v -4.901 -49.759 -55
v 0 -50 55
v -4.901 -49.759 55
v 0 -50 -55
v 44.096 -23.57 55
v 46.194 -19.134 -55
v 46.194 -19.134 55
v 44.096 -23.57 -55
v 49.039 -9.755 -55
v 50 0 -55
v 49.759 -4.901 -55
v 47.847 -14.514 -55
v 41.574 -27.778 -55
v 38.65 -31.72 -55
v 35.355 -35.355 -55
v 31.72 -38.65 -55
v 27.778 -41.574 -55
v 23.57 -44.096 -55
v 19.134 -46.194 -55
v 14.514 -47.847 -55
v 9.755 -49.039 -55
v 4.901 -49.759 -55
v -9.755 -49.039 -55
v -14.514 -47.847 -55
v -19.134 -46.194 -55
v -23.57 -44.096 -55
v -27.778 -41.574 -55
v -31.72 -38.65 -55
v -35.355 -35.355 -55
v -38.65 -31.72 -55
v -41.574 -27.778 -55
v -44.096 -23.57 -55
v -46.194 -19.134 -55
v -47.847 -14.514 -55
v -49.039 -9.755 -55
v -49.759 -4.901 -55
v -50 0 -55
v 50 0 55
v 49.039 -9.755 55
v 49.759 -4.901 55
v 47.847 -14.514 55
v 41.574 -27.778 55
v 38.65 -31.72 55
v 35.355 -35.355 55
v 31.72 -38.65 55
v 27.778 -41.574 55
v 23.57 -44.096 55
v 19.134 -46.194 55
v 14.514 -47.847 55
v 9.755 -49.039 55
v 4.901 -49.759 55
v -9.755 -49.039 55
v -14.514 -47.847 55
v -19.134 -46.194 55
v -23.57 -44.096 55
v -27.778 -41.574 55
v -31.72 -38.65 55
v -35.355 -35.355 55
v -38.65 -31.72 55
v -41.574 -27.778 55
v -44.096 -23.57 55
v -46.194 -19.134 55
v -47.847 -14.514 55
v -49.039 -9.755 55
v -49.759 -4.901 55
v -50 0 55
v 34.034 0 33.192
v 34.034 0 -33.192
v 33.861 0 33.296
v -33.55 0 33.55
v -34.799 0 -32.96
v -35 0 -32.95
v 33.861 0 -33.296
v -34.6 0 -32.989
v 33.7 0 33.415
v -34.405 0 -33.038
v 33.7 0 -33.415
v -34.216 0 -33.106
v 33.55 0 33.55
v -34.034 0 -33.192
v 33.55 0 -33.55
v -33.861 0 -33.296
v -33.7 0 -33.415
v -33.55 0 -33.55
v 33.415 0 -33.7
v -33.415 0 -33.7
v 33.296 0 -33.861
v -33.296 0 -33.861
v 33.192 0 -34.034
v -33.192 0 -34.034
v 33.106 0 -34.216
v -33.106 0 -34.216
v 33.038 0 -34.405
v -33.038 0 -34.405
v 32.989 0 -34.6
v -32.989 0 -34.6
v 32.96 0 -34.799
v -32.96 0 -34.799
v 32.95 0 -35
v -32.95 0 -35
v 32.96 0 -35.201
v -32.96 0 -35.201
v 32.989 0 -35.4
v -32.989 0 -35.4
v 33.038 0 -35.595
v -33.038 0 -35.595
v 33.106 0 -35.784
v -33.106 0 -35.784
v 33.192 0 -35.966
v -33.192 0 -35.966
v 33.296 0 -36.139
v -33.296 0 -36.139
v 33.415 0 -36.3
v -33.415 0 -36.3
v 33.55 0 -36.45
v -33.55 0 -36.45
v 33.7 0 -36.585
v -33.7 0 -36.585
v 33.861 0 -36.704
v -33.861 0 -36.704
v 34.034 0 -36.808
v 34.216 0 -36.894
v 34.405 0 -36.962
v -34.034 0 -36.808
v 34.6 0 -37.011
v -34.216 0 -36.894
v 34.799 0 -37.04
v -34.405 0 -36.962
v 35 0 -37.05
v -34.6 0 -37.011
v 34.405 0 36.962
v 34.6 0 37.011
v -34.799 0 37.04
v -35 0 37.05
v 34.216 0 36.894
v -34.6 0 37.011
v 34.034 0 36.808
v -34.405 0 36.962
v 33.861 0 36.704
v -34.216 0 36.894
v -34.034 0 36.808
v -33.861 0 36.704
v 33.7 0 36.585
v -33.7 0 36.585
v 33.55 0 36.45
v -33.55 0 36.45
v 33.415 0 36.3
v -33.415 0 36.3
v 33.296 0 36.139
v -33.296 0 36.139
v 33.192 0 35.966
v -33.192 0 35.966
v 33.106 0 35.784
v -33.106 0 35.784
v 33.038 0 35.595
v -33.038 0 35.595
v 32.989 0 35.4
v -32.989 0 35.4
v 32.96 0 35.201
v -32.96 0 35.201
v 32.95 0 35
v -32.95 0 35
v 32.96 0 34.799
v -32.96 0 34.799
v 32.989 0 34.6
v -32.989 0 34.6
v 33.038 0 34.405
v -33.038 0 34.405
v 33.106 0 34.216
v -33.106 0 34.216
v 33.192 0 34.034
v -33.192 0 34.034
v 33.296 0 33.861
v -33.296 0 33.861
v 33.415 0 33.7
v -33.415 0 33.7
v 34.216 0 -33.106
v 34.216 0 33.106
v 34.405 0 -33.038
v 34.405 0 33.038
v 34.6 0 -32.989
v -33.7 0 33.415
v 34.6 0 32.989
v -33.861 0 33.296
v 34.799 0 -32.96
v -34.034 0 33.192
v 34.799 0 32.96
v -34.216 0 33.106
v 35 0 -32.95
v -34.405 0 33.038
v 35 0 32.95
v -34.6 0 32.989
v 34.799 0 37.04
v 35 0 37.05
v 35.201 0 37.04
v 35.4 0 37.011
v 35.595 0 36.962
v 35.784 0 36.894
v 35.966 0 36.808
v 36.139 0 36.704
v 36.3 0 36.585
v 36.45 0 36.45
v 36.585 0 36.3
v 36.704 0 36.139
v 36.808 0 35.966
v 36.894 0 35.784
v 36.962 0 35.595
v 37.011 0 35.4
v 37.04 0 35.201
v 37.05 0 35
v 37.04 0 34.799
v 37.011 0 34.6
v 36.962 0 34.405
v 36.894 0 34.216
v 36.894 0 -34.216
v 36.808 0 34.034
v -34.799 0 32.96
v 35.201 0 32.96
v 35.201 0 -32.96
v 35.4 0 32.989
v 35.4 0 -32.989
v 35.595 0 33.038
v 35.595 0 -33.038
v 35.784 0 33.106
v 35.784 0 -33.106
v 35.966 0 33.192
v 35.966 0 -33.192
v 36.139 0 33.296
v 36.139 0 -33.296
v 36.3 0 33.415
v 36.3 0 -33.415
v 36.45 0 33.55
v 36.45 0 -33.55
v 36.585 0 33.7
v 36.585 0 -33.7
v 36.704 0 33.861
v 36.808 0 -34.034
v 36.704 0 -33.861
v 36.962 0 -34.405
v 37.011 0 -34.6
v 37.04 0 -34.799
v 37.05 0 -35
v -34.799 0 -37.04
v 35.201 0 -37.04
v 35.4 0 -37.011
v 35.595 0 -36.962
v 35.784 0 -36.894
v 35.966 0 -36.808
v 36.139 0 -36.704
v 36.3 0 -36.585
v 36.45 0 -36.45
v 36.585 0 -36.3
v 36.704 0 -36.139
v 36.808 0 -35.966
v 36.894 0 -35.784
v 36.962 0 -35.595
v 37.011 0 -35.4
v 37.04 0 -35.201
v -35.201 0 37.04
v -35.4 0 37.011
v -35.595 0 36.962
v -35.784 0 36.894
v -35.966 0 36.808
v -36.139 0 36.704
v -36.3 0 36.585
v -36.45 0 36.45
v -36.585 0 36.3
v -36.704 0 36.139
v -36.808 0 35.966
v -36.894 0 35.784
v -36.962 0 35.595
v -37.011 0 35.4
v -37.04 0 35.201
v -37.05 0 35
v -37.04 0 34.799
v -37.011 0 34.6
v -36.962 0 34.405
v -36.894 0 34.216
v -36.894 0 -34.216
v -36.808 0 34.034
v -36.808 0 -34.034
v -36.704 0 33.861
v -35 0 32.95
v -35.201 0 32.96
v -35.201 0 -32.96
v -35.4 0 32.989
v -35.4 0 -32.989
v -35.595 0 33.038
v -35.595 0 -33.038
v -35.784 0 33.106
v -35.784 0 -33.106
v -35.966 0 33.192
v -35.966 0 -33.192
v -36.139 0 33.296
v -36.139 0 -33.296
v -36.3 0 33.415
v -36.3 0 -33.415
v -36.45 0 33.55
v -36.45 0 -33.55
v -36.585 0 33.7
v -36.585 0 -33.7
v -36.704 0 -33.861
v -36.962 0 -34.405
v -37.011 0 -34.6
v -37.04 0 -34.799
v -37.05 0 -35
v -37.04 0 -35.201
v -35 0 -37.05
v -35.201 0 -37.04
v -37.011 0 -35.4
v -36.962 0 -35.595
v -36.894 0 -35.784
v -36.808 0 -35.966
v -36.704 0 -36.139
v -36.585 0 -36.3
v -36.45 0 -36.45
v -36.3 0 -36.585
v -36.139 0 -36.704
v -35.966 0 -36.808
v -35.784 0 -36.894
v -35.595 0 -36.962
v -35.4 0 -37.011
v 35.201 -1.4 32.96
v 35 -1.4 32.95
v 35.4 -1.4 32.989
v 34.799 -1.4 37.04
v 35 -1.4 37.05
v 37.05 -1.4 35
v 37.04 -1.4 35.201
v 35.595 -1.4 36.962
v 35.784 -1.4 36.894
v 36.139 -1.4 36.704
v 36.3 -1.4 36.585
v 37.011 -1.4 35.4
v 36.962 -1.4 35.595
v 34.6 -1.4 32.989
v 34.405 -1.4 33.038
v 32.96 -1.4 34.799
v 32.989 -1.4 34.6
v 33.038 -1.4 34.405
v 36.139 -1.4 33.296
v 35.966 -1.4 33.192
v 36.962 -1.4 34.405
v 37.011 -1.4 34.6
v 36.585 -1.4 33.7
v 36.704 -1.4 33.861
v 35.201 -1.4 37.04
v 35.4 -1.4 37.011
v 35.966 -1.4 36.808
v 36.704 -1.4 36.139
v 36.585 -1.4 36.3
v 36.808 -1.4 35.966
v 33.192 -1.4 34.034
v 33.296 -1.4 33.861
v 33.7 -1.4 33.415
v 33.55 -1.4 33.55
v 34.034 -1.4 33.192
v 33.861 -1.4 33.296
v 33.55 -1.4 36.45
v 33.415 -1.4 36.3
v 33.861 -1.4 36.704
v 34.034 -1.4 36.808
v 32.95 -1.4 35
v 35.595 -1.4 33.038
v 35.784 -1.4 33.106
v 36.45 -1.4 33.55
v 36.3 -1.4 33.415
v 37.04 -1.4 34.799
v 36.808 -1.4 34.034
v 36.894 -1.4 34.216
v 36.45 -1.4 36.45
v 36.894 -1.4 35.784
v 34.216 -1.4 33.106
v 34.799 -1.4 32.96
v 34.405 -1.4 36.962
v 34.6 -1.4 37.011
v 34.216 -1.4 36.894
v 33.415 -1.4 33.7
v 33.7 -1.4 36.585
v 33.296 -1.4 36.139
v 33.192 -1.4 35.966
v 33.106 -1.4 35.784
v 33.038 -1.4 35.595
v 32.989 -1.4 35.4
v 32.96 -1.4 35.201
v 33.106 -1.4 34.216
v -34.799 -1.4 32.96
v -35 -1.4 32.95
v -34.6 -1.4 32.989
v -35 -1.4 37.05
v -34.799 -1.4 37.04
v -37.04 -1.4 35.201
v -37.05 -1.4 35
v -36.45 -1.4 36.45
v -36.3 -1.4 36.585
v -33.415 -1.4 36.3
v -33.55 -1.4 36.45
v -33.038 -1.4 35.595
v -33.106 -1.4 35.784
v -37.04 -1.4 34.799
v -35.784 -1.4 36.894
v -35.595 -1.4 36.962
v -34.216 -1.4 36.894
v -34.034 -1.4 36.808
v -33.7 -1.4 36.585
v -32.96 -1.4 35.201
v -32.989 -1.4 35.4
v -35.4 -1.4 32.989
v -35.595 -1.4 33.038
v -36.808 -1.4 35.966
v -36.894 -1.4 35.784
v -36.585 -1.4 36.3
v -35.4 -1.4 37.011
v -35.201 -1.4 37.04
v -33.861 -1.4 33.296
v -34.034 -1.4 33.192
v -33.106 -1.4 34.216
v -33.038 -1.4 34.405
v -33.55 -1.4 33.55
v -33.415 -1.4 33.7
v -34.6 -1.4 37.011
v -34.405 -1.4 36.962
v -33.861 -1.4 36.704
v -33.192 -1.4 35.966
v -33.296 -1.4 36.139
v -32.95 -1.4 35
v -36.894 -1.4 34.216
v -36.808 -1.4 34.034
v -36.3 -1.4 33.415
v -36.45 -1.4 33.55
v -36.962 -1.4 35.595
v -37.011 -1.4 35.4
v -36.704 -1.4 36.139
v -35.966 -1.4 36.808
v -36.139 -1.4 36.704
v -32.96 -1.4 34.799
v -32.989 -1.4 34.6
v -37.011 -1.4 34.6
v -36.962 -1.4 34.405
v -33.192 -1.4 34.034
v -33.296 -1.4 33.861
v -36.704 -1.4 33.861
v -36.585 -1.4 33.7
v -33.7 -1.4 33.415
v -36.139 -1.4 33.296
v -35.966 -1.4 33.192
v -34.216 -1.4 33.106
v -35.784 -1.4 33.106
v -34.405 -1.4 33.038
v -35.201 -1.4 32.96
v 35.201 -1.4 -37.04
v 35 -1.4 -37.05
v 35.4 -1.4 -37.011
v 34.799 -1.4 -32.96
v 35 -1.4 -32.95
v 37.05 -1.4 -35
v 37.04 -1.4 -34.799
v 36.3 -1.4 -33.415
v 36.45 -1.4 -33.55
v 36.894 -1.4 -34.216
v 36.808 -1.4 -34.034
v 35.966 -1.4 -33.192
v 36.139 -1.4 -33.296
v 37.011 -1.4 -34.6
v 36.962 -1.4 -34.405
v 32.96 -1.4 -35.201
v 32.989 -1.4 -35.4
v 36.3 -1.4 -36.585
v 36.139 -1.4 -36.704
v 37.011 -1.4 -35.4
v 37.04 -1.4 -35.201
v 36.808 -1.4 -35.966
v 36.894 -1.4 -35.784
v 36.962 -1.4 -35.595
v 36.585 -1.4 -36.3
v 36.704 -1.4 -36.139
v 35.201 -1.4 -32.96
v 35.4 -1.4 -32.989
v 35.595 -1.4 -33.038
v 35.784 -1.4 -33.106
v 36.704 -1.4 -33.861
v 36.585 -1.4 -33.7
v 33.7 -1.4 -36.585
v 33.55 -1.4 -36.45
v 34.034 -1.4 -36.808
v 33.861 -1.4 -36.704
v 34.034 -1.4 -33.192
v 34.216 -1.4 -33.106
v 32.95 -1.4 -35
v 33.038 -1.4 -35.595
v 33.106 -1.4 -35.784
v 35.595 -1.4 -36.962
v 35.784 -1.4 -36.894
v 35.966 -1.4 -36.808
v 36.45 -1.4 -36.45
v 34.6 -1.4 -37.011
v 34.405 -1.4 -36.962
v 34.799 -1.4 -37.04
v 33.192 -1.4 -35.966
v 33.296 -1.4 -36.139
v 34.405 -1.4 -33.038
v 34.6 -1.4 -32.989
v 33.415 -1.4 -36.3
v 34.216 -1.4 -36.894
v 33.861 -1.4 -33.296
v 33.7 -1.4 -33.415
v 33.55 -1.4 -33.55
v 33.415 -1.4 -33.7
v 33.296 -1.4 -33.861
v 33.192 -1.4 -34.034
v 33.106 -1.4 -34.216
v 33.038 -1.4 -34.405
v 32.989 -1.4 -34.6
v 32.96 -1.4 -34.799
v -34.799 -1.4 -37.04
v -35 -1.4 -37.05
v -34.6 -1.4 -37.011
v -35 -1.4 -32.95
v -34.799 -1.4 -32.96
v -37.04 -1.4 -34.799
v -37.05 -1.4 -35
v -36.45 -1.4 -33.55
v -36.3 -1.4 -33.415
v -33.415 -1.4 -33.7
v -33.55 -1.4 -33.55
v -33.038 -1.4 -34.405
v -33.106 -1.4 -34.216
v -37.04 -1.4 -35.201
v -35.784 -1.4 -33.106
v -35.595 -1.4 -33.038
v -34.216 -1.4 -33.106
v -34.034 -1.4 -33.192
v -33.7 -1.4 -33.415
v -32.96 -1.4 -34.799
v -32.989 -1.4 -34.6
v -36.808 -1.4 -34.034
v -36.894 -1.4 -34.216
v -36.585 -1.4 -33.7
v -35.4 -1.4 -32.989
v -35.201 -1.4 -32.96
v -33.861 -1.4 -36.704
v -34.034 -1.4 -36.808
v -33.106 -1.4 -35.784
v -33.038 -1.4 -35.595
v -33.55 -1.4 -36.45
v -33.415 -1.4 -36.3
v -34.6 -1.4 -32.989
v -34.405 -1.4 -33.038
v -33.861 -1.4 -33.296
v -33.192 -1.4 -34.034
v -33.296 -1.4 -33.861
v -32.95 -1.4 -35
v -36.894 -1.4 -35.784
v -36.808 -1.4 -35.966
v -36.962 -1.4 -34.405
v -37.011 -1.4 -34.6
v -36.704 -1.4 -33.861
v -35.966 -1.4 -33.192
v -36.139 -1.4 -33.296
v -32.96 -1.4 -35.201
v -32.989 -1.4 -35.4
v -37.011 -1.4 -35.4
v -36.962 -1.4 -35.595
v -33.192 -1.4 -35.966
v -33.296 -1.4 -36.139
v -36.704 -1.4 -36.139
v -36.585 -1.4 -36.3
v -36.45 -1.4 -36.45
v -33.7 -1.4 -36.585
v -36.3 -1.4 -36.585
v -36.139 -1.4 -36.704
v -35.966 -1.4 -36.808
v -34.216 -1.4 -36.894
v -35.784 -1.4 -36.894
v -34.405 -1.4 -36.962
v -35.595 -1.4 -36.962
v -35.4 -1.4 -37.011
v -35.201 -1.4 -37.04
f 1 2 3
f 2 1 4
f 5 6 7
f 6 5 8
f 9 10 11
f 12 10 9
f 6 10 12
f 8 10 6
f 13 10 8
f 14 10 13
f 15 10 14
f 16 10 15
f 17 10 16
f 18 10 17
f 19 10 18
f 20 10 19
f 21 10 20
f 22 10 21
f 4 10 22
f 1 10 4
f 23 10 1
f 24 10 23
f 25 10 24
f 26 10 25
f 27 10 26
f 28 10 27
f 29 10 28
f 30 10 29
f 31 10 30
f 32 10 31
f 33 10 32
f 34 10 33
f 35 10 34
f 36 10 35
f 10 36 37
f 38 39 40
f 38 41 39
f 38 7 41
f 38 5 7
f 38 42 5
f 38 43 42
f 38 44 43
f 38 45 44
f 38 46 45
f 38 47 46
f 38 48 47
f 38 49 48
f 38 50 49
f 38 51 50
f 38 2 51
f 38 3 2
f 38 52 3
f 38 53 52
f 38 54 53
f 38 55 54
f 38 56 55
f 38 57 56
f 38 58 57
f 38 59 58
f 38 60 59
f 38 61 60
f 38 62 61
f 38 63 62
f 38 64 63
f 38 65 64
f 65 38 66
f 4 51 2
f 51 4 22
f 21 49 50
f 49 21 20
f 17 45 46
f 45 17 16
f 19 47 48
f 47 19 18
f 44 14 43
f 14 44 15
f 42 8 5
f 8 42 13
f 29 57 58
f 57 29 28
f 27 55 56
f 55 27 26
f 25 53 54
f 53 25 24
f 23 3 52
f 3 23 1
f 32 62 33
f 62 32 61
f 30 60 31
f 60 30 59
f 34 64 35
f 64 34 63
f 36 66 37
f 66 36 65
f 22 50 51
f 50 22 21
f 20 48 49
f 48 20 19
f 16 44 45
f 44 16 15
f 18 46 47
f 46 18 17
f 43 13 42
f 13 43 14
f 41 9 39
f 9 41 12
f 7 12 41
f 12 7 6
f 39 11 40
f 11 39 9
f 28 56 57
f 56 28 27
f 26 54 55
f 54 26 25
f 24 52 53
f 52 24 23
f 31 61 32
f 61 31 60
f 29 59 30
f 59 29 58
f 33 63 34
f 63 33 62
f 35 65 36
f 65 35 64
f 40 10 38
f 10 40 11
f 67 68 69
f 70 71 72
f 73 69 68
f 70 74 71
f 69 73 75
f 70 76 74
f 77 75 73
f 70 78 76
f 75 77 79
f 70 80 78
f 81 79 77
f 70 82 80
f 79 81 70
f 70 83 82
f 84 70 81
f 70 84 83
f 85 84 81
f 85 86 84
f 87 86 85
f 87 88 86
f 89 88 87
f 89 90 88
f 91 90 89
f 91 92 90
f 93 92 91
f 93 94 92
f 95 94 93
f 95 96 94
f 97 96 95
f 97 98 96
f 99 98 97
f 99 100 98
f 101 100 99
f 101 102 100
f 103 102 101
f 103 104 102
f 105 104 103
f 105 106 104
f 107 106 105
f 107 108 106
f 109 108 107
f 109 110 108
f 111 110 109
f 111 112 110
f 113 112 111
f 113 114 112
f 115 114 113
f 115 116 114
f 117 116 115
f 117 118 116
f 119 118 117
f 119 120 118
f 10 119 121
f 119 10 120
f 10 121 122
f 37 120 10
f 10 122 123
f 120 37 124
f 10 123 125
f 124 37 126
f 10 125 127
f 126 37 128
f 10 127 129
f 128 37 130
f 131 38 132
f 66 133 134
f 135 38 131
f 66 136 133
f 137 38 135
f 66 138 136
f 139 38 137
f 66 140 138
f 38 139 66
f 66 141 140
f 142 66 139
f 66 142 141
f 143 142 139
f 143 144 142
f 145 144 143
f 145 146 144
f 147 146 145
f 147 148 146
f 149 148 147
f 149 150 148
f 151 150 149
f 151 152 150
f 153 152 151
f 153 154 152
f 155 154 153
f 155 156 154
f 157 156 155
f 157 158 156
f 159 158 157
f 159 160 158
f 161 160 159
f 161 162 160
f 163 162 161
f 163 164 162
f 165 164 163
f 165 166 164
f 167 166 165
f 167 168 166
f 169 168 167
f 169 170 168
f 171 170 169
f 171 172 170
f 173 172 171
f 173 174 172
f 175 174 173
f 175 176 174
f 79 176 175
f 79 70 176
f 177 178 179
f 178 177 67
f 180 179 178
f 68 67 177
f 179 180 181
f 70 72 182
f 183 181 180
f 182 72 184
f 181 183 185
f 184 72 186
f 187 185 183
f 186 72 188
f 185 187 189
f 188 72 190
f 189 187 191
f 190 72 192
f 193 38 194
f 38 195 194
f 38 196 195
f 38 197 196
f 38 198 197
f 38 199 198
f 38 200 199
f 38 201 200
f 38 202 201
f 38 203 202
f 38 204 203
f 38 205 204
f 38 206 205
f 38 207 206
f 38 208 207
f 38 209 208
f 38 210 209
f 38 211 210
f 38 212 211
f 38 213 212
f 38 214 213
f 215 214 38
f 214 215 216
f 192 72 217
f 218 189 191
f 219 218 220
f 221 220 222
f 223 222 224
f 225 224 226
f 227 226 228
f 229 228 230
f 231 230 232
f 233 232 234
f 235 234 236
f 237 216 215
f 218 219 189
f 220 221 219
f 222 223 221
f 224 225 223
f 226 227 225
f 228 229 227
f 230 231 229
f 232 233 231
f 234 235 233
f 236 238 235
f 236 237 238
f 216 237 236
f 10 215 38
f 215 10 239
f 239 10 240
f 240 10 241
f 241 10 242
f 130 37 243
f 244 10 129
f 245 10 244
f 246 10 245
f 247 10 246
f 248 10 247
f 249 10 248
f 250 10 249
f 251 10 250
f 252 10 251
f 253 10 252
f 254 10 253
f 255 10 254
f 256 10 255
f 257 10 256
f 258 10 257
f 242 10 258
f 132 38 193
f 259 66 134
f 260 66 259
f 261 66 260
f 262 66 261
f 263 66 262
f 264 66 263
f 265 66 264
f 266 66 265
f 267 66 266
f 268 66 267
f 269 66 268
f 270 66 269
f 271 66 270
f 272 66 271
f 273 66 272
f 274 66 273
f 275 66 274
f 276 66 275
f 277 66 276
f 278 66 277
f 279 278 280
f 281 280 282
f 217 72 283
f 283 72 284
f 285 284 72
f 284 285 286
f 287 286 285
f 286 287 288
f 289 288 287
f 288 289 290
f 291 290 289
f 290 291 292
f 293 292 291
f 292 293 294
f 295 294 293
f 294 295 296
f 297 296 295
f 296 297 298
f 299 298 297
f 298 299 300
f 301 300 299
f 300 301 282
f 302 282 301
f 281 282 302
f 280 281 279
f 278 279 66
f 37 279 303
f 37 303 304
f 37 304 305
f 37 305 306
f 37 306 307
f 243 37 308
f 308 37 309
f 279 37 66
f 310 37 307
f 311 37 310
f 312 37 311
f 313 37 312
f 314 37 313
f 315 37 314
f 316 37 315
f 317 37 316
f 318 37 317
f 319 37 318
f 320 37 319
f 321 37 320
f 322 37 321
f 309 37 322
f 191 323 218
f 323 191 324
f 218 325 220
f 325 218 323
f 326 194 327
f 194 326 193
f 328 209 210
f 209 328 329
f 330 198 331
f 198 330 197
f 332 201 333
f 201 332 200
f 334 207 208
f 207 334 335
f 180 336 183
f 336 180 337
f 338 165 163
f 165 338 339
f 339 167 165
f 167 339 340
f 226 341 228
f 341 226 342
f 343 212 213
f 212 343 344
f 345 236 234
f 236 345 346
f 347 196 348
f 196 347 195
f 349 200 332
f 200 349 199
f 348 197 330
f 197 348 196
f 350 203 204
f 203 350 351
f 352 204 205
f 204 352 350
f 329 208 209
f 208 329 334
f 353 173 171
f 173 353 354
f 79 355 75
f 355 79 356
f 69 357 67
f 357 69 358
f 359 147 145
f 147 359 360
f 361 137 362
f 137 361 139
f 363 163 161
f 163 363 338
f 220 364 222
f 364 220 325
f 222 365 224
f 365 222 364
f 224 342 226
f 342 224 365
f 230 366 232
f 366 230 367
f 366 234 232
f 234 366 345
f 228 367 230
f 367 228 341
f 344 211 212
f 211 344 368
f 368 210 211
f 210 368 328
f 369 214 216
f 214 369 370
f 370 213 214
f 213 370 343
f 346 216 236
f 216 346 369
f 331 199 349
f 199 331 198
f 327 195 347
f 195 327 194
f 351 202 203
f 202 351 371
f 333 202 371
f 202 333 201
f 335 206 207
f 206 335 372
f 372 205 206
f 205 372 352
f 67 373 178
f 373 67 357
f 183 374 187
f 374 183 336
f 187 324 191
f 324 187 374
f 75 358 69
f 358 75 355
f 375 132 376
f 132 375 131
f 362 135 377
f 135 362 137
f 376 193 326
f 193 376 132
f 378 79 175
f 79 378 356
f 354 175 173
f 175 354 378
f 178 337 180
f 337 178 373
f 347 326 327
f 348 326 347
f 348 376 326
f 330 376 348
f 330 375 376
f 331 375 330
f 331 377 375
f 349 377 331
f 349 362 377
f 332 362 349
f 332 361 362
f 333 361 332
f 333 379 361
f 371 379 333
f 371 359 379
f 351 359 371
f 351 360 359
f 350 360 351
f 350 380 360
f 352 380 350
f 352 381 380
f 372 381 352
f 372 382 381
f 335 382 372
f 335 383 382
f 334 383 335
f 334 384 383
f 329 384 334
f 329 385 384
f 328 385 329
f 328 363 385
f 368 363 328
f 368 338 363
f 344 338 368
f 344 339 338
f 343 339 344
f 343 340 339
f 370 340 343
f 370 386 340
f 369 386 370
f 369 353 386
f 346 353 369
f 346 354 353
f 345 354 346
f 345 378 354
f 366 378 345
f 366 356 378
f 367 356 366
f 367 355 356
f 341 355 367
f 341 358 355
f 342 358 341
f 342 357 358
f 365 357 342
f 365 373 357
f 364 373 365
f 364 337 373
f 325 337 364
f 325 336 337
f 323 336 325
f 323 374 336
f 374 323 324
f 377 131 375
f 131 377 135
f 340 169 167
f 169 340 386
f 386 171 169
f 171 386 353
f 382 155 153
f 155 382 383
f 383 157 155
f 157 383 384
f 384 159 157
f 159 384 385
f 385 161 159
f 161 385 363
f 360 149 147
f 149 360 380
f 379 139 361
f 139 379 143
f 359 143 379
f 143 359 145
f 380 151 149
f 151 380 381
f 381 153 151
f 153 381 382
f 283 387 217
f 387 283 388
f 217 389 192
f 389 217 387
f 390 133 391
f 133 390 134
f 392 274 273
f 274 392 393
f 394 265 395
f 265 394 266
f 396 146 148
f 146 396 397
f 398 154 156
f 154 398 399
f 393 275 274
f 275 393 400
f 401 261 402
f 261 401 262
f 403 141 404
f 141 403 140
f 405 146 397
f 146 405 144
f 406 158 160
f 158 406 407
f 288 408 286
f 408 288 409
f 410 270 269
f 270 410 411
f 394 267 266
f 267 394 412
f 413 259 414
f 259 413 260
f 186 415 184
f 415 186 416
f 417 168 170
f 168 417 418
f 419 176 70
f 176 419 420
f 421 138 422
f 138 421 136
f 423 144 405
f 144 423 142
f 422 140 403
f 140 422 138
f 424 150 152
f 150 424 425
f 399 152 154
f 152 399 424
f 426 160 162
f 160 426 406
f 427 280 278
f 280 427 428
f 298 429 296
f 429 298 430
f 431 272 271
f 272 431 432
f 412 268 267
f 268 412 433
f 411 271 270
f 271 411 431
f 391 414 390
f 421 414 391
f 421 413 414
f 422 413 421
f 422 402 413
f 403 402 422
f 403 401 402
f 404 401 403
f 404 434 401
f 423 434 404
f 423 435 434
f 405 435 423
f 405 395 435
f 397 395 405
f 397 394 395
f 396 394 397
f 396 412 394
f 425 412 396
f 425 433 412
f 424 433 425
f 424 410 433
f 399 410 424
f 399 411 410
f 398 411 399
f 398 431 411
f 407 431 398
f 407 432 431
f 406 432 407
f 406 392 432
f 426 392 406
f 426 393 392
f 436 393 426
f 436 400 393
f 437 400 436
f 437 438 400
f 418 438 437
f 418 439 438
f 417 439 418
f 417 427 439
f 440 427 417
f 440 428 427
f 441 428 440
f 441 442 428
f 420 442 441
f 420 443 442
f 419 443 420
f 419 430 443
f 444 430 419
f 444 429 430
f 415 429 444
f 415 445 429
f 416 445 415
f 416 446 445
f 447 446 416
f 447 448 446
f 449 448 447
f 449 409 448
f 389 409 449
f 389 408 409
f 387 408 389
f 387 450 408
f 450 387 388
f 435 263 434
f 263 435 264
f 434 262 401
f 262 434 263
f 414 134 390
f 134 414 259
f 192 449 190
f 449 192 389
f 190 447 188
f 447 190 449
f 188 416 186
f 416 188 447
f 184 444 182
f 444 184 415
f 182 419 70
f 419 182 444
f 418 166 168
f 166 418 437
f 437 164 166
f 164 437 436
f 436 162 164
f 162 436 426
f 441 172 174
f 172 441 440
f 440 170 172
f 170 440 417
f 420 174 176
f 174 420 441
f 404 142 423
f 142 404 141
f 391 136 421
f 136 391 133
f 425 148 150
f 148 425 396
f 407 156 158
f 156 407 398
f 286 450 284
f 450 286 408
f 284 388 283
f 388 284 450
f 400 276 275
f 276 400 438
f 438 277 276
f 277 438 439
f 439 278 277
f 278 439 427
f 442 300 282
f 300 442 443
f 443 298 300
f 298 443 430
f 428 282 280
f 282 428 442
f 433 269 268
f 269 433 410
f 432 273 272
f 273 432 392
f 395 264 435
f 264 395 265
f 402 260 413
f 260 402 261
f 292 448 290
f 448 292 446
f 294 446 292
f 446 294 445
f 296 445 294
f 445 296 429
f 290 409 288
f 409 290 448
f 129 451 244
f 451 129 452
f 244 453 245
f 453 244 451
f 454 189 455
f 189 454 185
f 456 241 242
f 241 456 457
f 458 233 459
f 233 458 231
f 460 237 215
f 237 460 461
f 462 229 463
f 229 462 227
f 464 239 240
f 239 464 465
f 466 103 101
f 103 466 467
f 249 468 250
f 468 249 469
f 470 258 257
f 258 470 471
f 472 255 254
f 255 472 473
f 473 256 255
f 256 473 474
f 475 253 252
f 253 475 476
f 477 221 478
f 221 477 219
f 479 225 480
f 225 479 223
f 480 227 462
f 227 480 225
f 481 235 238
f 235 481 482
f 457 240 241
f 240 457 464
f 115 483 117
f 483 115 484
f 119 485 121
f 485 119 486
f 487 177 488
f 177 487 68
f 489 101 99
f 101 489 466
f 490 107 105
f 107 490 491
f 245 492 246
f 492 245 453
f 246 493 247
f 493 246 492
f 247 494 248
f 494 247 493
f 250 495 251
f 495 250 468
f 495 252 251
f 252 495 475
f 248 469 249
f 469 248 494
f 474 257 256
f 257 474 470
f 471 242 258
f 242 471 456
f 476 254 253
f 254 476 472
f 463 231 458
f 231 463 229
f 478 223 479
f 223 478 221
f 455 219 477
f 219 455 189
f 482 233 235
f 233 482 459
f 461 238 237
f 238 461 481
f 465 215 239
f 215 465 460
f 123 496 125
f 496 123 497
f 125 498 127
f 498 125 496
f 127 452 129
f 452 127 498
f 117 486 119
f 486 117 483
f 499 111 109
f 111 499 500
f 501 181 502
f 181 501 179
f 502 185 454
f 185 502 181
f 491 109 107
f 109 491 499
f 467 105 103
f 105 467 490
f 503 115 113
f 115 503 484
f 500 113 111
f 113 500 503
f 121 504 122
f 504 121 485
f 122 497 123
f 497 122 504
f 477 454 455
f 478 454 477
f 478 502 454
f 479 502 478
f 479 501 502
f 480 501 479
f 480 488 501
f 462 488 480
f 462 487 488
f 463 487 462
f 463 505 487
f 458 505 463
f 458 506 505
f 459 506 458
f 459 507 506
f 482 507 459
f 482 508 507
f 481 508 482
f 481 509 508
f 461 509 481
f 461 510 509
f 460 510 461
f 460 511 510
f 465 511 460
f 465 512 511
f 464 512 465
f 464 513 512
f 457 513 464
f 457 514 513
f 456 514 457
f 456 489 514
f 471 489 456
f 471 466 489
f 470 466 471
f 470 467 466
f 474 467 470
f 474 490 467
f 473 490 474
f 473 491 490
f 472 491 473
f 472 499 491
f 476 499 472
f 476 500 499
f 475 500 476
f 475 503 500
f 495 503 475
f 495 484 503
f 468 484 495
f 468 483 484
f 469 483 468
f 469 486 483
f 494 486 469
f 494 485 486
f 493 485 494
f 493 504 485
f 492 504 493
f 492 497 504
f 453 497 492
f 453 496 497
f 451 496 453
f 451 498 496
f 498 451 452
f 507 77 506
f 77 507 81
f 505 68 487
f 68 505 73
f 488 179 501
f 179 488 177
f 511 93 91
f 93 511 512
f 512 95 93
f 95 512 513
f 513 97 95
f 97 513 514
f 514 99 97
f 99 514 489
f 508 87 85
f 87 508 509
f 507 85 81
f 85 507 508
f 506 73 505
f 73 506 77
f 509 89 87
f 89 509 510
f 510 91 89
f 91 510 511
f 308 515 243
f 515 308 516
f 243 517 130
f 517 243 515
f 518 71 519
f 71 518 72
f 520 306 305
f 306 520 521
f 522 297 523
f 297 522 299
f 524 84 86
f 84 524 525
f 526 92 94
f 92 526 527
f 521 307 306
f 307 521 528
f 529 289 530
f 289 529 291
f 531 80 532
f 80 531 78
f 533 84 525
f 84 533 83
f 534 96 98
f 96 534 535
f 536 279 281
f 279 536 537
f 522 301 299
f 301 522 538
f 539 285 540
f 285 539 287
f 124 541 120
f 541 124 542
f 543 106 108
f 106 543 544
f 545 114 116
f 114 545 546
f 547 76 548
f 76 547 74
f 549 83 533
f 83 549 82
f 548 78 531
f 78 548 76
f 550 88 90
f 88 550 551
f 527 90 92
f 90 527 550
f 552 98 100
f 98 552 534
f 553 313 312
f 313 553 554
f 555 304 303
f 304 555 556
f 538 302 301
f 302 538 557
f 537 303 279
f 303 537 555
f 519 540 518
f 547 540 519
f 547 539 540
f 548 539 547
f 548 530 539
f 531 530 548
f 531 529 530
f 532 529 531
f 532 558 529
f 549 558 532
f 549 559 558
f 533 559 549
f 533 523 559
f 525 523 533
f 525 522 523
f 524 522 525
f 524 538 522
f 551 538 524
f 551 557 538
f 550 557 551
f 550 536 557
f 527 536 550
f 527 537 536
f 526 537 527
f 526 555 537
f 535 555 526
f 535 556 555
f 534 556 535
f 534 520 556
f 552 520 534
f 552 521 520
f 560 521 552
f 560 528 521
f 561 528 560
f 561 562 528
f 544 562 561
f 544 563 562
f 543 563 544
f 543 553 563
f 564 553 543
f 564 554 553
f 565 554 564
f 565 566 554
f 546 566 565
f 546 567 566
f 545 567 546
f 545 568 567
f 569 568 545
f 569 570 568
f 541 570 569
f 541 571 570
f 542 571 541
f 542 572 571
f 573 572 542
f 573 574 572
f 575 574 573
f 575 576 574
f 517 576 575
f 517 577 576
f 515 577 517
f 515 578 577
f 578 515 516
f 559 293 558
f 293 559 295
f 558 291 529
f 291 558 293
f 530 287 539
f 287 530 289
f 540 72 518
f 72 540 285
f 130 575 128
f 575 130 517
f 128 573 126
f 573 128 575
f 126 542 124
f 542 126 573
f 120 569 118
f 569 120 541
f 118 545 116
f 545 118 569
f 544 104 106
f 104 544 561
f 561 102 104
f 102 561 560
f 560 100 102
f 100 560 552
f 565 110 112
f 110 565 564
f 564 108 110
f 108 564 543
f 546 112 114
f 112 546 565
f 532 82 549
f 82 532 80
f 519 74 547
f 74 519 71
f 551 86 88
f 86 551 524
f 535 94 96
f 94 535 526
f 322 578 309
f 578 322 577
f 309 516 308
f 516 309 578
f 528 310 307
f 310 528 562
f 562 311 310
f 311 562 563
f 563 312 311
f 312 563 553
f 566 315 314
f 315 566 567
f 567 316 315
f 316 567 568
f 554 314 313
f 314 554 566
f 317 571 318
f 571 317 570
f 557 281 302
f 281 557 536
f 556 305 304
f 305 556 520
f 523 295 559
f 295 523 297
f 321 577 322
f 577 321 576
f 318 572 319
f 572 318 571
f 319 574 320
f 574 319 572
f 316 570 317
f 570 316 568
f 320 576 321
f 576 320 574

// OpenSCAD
$fn = 64;

cylHeight = 110;
cylDiameter = 100;

mHoleDepth = 1.5;
mHoleDiameter = 4.1;
mHoleMargin = 15;

module mHole(){
  rotate([90, 90, 0])
    cylinder(
      h = mHoleDepth, 
      d1 = mHoleDiameter,
      d2 = mHoleDiameter,
      center = false);
}

module main(){
  difference(){
    cylinder(h = cylHeight,
            d1 = cylDiameter,
            d2 = cylDiameter,
        center = true);

    translate([0, cylDiameter/2, 0])
      cube([cylDiameter, cylDiameter, cylHeight+2], center=true);

    //bottom
    margin=cylDiameter/2-mHoleMargin;
    translate([margin, 0.1, margin]) mHole();
    translate([-margin, 0.1, margin]) mHole();

    //top
    translate([margin, 0.1, -margin]) mHole();
    translate([-margin, 0.1, -margin])  mHole();       
  }
}

main();
